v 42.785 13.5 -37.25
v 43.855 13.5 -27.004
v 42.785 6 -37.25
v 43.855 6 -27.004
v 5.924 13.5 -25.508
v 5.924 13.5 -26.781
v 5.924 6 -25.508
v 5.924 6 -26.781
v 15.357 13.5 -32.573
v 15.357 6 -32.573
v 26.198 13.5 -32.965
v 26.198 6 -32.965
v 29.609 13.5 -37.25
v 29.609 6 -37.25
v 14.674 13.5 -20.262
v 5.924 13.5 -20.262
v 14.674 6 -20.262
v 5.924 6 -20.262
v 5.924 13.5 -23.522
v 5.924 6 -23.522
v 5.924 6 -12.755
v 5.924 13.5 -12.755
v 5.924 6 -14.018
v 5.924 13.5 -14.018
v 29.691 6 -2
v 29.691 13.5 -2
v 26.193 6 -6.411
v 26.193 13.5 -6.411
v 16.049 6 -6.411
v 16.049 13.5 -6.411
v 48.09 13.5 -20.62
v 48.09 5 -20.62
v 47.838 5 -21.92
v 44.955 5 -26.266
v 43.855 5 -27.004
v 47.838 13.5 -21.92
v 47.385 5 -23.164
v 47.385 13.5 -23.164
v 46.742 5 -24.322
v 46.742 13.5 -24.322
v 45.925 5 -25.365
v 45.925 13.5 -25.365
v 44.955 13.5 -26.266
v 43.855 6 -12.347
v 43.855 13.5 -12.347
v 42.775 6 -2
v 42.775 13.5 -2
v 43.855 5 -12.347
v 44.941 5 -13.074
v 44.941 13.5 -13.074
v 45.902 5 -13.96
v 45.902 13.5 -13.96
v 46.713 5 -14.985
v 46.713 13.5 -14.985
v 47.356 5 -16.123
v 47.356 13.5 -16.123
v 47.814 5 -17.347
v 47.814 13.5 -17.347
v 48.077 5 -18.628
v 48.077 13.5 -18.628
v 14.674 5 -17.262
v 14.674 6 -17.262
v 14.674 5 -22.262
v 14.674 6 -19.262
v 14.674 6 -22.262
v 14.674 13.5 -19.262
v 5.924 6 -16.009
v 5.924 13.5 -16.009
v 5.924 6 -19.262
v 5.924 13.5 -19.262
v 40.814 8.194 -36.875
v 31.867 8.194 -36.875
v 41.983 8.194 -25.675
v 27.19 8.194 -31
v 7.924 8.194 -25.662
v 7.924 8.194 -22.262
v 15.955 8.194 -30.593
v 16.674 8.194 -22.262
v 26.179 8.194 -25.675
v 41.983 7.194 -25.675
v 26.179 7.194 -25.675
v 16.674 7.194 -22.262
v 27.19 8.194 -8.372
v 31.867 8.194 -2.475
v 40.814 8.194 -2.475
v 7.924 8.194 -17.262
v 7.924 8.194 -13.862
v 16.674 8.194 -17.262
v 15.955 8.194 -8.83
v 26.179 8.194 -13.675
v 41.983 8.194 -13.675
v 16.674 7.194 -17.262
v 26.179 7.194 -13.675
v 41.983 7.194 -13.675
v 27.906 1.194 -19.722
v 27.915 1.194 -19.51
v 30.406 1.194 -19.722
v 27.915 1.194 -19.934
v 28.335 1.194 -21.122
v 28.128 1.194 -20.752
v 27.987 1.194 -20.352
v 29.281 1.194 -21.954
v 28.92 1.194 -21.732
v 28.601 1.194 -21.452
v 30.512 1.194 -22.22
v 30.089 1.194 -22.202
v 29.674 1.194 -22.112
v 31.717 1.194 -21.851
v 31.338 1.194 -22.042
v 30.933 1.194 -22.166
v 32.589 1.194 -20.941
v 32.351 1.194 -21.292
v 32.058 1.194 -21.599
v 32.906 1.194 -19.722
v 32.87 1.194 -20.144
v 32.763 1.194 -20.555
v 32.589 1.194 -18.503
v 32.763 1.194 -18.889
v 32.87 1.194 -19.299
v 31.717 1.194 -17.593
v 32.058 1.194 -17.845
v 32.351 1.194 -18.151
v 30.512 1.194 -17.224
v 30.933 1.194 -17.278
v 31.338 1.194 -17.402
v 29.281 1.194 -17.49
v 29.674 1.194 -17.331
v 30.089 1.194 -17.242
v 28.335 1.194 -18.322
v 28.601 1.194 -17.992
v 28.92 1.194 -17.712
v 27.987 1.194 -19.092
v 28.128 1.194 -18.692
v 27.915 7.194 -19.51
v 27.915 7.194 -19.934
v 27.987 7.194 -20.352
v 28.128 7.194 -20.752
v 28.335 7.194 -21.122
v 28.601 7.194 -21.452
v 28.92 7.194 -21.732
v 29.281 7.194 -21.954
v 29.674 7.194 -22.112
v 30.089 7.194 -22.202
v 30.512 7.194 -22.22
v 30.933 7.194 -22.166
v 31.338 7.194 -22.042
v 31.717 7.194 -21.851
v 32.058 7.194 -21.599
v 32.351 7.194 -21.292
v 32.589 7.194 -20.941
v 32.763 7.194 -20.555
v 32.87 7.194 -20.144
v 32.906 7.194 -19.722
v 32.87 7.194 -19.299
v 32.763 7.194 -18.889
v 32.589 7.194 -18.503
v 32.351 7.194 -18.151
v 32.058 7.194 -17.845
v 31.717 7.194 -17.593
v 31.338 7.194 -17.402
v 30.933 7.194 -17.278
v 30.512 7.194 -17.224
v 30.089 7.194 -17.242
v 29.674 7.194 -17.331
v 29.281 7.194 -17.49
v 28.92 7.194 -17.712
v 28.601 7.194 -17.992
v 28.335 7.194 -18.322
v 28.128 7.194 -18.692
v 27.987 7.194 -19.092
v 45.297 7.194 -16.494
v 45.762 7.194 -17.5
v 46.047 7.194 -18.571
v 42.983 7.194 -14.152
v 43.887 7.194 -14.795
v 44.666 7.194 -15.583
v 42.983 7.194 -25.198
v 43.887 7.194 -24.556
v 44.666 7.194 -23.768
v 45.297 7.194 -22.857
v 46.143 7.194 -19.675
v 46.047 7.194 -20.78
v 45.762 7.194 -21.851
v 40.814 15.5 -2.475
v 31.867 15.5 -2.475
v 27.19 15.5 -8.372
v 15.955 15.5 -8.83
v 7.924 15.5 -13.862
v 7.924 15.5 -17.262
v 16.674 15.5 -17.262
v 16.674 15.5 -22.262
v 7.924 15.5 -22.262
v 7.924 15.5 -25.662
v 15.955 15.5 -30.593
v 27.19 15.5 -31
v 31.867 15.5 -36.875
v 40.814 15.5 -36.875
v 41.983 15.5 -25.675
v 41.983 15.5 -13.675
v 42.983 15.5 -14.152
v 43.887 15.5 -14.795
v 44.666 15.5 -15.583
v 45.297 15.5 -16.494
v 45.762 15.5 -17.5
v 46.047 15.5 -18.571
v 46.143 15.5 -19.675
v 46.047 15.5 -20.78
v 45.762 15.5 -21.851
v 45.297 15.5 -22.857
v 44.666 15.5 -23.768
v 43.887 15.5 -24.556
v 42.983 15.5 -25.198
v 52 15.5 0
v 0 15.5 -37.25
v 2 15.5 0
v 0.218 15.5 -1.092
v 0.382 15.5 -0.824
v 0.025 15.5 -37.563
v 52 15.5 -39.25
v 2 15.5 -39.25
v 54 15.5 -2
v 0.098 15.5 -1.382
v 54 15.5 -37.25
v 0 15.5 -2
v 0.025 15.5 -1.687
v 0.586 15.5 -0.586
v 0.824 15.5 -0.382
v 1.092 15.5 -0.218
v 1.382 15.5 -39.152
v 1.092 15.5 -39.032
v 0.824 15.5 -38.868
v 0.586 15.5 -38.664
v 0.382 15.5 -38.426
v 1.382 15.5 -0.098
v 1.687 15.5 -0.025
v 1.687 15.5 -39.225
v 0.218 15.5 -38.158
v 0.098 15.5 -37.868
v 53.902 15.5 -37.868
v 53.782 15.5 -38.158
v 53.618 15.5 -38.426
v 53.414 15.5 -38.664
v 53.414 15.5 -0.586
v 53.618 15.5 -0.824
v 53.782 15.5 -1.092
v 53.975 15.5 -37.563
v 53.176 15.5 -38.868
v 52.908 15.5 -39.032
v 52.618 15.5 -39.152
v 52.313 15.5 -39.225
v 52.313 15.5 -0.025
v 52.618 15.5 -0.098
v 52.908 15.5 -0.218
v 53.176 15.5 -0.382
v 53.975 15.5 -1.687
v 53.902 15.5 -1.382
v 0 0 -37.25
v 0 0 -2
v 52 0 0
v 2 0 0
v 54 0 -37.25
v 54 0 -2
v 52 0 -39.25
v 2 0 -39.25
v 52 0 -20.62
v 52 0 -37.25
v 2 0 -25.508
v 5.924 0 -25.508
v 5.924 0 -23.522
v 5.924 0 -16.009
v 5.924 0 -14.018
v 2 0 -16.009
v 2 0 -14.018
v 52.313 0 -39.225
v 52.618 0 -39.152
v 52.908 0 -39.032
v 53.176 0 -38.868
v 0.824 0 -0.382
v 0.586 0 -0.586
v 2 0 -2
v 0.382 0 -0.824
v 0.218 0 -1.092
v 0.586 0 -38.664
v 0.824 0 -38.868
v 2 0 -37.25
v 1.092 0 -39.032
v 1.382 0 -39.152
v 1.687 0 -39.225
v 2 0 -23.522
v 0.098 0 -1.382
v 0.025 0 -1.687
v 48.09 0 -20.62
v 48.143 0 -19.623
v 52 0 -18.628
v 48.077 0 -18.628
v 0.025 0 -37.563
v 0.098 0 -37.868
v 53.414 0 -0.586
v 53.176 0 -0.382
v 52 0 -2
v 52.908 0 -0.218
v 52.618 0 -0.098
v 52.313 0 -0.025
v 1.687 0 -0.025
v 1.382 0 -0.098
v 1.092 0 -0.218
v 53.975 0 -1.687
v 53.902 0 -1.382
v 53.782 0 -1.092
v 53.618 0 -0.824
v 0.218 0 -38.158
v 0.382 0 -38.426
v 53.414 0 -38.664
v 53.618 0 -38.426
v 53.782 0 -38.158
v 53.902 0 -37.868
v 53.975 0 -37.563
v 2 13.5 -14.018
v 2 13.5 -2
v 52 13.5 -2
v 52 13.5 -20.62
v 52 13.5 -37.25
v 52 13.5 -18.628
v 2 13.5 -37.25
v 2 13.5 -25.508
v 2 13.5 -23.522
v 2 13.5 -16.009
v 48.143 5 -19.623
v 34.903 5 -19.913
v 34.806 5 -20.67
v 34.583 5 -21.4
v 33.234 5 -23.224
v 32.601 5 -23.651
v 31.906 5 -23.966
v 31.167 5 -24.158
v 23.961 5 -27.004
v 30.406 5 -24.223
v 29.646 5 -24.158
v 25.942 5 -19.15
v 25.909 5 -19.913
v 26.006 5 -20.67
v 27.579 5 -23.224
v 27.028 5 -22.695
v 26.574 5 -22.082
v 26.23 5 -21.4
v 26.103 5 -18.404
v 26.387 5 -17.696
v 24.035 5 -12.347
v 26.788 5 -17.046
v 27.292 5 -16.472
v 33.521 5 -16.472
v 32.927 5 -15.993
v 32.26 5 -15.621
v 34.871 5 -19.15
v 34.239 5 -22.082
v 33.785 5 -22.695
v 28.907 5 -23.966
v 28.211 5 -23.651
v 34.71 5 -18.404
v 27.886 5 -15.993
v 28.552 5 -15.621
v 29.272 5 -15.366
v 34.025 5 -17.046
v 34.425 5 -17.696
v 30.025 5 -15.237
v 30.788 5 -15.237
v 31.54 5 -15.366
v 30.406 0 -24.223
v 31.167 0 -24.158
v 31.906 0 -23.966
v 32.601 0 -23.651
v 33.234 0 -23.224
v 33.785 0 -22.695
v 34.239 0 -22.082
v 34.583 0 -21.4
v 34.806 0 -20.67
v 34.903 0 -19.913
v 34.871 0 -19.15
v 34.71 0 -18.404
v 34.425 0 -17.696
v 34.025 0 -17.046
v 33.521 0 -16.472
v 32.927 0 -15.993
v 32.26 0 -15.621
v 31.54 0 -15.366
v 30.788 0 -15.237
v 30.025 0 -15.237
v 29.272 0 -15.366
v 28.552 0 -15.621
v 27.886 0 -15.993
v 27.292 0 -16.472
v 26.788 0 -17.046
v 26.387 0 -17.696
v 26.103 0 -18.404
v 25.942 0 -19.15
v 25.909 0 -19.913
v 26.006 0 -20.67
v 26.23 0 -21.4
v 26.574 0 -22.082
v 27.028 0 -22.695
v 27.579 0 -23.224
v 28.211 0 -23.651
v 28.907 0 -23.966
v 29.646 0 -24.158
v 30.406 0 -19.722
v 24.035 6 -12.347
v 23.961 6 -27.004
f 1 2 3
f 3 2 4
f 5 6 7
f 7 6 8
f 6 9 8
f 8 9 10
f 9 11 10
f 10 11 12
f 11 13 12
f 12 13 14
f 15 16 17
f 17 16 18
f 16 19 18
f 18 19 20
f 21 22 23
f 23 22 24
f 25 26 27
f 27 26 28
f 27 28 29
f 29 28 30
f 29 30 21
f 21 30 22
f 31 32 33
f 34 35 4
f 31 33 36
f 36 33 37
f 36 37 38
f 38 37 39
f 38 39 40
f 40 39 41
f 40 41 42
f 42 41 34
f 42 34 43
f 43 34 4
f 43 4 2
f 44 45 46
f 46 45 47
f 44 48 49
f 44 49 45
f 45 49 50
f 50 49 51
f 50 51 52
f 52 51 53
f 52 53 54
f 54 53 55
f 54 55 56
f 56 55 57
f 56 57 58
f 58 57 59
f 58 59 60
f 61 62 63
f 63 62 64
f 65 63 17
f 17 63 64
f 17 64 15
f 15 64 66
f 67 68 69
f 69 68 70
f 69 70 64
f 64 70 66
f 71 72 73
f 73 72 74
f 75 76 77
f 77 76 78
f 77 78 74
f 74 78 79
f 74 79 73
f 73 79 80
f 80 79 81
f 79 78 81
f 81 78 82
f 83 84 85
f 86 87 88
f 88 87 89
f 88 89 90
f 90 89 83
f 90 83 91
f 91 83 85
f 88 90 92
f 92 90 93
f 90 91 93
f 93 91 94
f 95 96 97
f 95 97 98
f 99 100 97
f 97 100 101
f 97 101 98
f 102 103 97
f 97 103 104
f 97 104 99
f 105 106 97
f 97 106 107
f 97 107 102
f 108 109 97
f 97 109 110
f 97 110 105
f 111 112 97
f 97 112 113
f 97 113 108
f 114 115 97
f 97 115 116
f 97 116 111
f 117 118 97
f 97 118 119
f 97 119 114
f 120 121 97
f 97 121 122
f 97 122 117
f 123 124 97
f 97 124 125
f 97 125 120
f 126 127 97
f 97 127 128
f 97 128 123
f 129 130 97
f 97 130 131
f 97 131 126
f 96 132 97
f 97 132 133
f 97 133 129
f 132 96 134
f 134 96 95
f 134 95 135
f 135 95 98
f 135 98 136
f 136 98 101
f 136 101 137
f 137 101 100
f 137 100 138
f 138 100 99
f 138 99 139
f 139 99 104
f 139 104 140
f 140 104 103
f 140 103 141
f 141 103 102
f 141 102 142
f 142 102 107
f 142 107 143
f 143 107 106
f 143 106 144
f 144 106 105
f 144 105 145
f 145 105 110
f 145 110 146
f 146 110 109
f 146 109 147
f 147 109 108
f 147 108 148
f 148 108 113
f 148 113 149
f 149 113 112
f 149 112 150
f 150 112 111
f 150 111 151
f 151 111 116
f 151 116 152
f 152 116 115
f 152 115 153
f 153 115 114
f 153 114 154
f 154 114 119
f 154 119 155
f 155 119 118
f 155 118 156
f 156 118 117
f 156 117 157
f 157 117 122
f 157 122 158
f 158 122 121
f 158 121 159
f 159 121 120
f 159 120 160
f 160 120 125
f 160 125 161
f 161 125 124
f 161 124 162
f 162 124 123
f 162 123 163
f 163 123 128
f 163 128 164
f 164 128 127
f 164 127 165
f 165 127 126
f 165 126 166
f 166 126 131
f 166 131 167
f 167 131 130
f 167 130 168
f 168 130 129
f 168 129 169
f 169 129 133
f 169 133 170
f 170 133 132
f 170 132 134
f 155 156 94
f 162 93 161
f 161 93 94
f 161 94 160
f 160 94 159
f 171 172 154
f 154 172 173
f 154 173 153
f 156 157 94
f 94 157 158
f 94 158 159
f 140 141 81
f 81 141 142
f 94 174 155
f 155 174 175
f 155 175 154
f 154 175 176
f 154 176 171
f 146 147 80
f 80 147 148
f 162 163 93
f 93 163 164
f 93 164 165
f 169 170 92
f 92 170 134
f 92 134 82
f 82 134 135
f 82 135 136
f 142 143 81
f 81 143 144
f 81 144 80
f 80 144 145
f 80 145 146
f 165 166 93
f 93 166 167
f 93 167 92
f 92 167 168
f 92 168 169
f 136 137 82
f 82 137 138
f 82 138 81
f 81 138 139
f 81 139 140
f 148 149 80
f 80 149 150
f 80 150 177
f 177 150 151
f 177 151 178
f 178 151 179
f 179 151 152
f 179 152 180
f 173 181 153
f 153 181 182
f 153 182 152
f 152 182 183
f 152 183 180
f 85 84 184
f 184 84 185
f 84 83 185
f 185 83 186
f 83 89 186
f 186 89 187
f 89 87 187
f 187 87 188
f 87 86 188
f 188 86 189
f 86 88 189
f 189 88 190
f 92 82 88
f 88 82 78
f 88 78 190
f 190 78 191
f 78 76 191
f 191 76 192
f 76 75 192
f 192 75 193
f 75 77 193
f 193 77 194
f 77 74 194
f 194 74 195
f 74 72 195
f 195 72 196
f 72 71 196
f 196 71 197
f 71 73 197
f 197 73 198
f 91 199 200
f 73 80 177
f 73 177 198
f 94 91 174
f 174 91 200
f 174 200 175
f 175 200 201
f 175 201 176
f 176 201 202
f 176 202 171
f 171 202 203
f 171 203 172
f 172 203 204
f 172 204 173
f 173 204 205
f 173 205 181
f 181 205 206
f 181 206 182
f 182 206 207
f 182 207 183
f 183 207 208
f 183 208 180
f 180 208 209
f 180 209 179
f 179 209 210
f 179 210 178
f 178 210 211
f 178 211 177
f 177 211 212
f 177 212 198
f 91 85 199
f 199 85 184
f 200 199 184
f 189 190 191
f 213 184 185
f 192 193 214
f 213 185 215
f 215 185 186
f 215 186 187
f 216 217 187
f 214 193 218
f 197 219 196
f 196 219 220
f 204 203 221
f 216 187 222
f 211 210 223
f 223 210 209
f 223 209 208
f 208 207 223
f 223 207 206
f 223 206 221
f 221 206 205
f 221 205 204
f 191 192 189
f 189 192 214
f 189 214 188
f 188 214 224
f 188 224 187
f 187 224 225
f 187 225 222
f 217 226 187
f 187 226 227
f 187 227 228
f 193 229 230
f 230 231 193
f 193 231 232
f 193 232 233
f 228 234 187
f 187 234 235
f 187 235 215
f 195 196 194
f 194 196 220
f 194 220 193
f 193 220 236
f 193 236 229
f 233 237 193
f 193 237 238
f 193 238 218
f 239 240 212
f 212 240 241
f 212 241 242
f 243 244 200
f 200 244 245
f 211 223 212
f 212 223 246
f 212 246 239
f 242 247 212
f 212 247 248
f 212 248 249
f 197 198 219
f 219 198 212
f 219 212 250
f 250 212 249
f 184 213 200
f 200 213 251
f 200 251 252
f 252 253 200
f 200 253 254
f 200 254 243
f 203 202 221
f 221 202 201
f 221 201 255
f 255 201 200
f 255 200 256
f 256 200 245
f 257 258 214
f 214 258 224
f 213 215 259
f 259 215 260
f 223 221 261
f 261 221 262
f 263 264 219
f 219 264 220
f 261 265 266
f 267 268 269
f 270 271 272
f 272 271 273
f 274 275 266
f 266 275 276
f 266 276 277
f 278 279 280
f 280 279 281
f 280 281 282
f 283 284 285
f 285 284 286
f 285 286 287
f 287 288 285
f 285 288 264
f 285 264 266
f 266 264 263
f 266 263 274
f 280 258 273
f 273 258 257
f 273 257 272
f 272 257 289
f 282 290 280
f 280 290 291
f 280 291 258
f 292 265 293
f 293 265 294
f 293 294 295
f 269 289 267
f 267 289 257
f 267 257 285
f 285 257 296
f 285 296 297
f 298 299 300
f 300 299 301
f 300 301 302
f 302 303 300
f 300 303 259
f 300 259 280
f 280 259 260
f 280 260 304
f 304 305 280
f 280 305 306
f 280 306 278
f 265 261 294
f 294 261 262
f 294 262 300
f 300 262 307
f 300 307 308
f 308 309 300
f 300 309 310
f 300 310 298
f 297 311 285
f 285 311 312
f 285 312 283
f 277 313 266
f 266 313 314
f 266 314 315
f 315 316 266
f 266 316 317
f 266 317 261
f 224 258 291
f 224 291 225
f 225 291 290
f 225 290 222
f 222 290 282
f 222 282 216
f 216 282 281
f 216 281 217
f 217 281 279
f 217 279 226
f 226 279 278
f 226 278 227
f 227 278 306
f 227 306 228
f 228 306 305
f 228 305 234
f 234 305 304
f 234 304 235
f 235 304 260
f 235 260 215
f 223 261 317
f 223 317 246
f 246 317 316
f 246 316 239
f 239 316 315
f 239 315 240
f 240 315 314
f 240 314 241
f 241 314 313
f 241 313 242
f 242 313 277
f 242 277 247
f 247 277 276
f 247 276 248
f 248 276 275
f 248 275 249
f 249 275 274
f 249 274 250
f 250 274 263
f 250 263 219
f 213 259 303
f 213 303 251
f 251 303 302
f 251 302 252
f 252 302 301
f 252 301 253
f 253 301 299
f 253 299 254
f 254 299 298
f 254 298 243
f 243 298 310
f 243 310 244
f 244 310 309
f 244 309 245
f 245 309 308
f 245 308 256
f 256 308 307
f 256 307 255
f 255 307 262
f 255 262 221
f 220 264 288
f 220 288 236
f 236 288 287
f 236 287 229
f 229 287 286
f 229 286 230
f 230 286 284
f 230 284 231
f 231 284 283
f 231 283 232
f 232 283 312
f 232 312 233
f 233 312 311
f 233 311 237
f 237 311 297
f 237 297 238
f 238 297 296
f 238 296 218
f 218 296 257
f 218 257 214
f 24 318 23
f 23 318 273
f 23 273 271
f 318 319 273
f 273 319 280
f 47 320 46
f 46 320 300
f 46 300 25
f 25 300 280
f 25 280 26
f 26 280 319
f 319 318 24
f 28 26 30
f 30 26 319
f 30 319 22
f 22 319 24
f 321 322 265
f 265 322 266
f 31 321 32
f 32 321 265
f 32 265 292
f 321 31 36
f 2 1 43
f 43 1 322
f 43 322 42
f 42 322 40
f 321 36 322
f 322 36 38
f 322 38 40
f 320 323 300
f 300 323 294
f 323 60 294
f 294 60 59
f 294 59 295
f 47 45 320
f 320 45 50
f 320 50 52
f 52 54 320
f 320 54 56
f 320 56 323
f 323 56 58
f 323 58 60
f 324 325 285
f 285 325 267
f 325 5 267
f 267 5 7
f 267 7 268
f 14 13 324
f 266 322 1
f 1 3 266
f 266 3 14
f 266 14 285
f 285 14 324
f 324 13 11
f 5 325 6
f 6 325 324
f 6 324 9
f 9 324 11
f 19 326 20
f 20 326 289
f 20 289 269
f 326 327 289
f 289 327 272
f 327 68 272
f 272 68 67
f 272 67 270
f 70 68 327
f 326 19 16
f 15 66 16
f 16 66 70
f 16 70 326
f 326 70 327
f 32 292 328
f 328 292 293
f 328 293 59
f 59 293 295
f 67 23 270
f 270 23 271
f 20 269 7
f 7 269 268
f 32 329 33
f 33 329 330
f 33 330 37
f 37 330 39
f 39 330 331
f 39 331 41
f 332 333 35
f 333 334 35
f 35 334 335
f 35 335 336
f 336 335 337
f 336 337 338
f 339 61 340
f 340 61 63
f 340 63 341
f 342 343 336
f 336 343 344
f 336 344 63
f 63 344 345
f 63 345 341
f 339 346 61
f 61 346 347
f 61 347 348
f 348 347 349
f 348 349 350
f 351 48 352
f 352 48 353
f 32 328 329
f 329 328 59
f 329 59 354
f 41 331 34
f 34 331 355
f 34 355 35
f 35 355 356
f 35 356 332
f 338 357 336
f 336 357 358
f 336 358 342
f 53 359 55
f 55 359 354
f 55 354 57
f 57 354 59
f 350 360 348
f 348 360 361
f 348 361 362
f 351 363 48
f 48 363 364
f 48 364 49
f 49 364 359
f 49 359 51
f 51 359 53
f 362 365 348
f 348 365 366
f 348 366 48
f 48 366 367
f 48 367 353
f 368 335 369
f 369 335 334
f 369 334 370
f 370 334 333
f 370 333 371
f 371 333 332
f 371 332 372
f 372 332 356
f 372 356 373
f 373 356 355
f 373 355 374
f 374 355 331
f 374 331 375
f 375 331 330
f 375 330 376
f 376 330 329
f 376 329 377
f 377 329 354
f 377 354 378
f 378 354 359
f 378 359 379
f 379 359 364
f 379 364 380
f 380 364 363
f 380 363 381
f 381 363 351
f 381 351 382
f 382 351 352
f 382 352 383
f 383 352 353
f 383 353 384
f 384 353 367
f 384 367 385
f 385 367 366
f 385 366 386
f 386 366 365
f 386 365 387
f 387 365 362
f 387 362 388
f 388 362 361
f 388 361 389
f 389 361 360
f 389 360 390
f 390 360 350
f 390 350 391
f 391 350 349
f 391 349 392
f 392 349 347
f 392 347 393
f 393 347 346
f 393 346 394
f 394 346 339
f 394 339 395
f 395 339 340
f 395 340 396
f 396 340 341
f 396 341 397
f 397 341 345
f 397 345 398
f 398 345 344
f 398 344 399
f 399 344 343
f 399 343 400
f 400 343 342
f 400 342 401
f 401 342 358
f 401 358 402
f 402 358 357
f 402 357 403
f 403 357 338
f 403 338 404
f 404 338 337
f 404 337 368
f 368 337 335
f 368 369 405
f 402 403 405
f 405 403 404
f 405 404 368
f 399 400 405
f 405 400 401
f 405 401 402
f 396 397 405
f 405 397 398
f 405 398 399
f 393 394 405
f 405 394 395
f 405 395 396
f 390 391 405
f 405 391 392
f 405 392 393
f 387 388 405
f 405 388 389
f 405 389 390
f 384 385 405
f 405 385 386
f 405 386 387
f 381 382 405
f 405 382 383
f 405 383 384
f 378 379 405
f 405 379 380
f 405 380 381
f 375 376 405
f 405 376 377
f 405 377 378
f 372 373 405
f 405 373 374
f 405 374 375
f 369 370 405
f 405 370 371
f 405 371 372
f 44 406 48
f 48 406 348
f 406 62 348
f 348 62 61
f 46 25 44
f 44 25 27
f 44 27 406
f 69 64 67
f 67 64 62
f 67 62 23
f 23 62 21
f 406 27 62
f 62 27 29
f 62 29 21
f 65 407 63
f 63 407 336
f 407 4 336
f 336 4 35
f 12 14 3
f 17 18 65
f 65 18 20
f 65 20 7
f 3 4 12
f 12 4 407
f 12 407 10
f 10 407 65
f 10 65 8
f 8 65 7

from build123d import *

# Parameters (mm, degrees)
SKETCH1_W              = 54
SKETCH1_H              = 39.25
BOSS_EXTRUDE1_DEPTH    = 15.5
FILLET1_R              = 2
FILLET2_R              = 2
M3_A_START             = -2.329776532
M3_A_BLANK_DEPTH       = 8
M3_A_START_2           = -3.329776532
M3_A_BLANK_2_DEPTH     = 1
M3_A_START_3           = -9.329776532
M3_A_BLANK_3_OUTLINE_R = 2.5
M3_A_BLANK_3_DEPTH     = 6
BODY_MOVE_COPY6_ANGLE  = 90
CUT_EXTRUDE1_DEPTH     = 13.5
SKETCH4_R              = 4.500854338
CUT_EXTRUDE3_DEPTH     = 5
CUT_EXTRUDE4_DEPTH     = 1


with BuildPart() as part:
    # Sketch1 → Boss-Extrude1 (new body)
    with BuildSketch(Plane(origin=(0, 0, 0), x_dir=(1, 0, 0), z_dir=(0, 1, 0))):
        with Locations((27, 19.625)):
            Rectangle(SKETCH1_W, SKETCH1_H)
    extrude(amount=BOSS_EXTRUDE1_DEPTH)

    # Fillet1
    fillet1_edges = [part.edges().sort_by_distance(p)[0] for p in [
        (0, 7.75, 0),
    ]]
    fillet(fillet1_edges, radius=FILLET1_R)

    # Fillet2
    fillet2_edges = [part.edges().sort_by_distance(p)[0] for p in [
        (0, 7.75, -39.25),
        (54, 7.75, -39.25),
        (54, 7.75, 0),
    ]]
    fillet(fillet2_edges, radius=FILLET2_R)


with BuildPart() as body_2:
    # M3-A Blank: read off the stored shape, not the designer's step
    # M3-A Blank outline → M3-A Blank (new body)
    with BuildSketch(Plane(origin=(0, 0, 0), x_dir=(1, 0, 0), z_dir=(0, 1, 0)).offset(M3_A_START)):
        with BuildLine():
            Line((-21.79493826, 68.00205199), (-26.79493826, 68.00205199))
            Line((-26.79493826, 68.00205199), (-26.79493826, 76.75205199))
            Line((-26.79493826, 76.75205199), (-30.19493826, 76.75205199))
            Line((-30.19493826, 76.75205199), (-35.227586031, 68.720149487))
            Line((-35.227586031, 68.720149487), (-35.685099465, 57.485652948))
            Line((-35.685099465, 57.485652948), (-41.581939277, 52.808848959))
            Line((-41.581939277, 52.808848959), (-41.581939277, 43.861919588))
            Line((-41.581939277, 43.861919588), (-30.381939277, 42.692718591))
            ThreePointArc((-30.381939277, 42.692718591), (-24.381939277, 38.532817401), (-18.381939277, 42.692718591))
            Line((-18.381939277, 42.692718591), (-7.181939277, 43.861919588))
            Line((-7.181939277, 43.861919588), (-7.181939277, 52.808848959))
            Line((-7.181939277, 52.808848959), (-13.057281533, 57.485652948))
            Line((-13.057281533, 57.485652948), (-13.463960141, 68.720149487))
            Line((-13.463960141, 68.720149487), (-18.39493826, 76.75205199))
            Line((-18.39493826, 76.75205199), (-21.79493826, 76.75205199))
            Line((-21.79493826, 76.75205199), (-21.79493826, 68.00205199))
        make_face()
    extrude(amount=M3_A_BLANK_DEPTH)

    # M3-A Blank 2 outline → M3-A Blank 2 (add)
    with BuildSketch(Plane(origin=(0, 0, 0), x_dir=(1, 0, 0), z_dir=(0, 1, 0)).offset(M3_A_START_2)):
        with BuildLine():
            Line((-30.381939277, 58.496246856), (-30.381939277, 42.692718591))
            ThreePointArc((-30.381939277, 42.692718591), (-24.381939277, 38.532817401), (-18.381939277, 42.692718591))
            Line((-18.381939277, 42.692718591), (-18.381939277, 58.496246856))
            Line((-18.381939277, 58.496246856), (-21.79493826, 68.00205199))
            Line((-21.79493826, 68.00205199), (-26.79493826, 68.00205199))
            Line((-26.79493826, 68.00205199), (-30.381939277, 58.496246856))
        make_face()
    extrude(amount=M3_A_BLANK_2_DEPTH)

    # M3-A Blank 3 outline → M3-A Blank 3 (add)
    with BuildSketch(Plane(origin=(0, 0, 0), x_dir=(1, 0, 0), z_dir=(0, 1, 0)).offset(M3_A_START_3)):
        with Locations((-24.335480832, 54.269355582)):
            Circle(M3_A_BLANK_3_OUTLINE_R)
    extrude(amount=M3_A_BLANK_3_DEPTH)


with BuildPart() as body_2_1:
    # Body-Move/Copy4: moved
    add(body_2.part.moved(Location((42.5, 8.919688157, 37.96700657))))


with BuildPart() as body_2_2:
    # Body-Move/Copy5: moved
    add(body_2_1.part.moved(Location((8.915108254, 0, 0))))


with BuildPart() as body_2_3:
    # Body-Move/Copy6: moved
    add(body_2_2.part.rotate(Axis((27.033168977, 0, -19.675428126), (0, 1, 0)), BODY_MOVE_COPY6_ANGLE))


with BuildPart() as body_2_4:
    # Body-Move/Copy7: moved
    add(body_2_3.part.moved(Location((0, 1.103676274, 0))))


with BuildPart() as body_2_5:
    # Body-Move/Copy8: moved
    add(body_2_4.part.moved(Location((0, 0.5, 0))))


with BuildPart() as part_1:
    add(part.part)

    # Intersect1: read off the stored shape, not the designer's step
    # Intersect1: cut body 2
    add(body_2_5.part, mode=Mode.SUBTRACT)

    # Sketch3 → Cut-Extrude1 (cut)
    with BuildSketch(Plane(origin=(0, 0, 0), x_dir=(-1, 0, 0), z_dir=(0, -1, 0))):
        Polygon((-5.923551682, 12.755419679), (-16.048628272, 6.41122612), (-26.192603819, 6.41122612), (-29.691162465, 2), (-2, 2), (-2, 14.017695962), (-5.923551682, 14.017695962), align=None)
        Polygon((-2, 37.25), (-29.60864948, 37.25), (-26.198159594, 32.965493874), (-15.357384062, 32.57306761), (-5.923551682, 26.781411023), (-5.923551682, 25.507817982), (-2, 25.507817982), align=None)
        Polygon((-5.923551682, 20.262429143), (-14.673551682, 20.262429143), (-14.673551682, 19.262429143), (-5.923551682, 19.262429143), (-5.923551682, 16.008924411), (-2, 16.008924411), (-2, 23.521920083), (-5.923551682, 23.521920083), align=None)
        with BuildLine():
            Line((-42.774921098, 2), (-52, 2))
            Line((-52, 2), (-52, 18.627764364))
            Line((-52, 18.627764364), (-48.077251764, 18.627764364))
            ThreePointArc((-48.077251764, 18.627764364), (-46.712904885, 14.985289801), (-43.85505184, 12.346778986))
            Line((-43.85505184, 12.346778986), (-42.774921098, 2))
        make_face()
        with BuildLine():
            Line((-52, 37.25), (-42.78544978, 37.25))
            Line((-42.78544978, 37.25), (-43.85505184, 27.004077266))
            ThreePointArc((-43.85505184, 27.004077266), (-46.741831066, 24.322246322), (-48.089593706, 20.619646239))
            Line((-48.089593706, 20.619646239), (-52, 20.619646239))
            Line((-52, 20.619646239), (-52, 37.25))
        make_face()
    extrude(amount=-CUT_EXTRUDE1_DEPTH, mode=Mode.SUBTRACT)

    # Sketch4 → Cut-Extrude3 (cut)
    with BuildSketch(Plane.XZ):
        with BuildLine():
            Line((5.923551682, -14.017695962), (5.923551682, -12.755419679))
            Line((5.923551682, -12.755419679), (16.048628272, -6.41122612))
            Line((16.048628272, -6.41122612), (26.192603819, -6.41122612))
            Line((26.192603819, -6.41122612), (29.691162465, -2))
            Line((29.691162465, -2), (42.774921098, -2))
            Line((42.774921098, -2), (43.85505184, -12.346778986))
            ThreePointArc((43.85505184, -12.346778986), (48.142786272, -19.675428126), (43.85505184, -27.004077266))
            Line((43.85505184, -27.004077266), (42.78544978, -37.25))
            Line((42.78544978, -37.25), (29.60864948, -37.25))
            Line((29.60864948, -37.25), (26.198159594, -32.965493874))
            Line((26.198159594, -32.965493874), (15.357384062, -32.57306761))
            Line((15.357384062, -32.57306761), (5.923551682, -26.781411023))
            Line((5.923551682, -26.781411023), (5.923551682, -25.507817982))
            Line((5.923551682, -25.507817982), (5.923551682, -23.521920083))
            Line((5.923551682, -23.521920083), (5.923551682, -20.262429143))
            Line((5.923551682, -20.262429143), (5.923551682, -19.262429143))
            Line((5.923551682, -19.262429143), (5.923551682, -16.008924411))
            Line((5.923551682, -16.008924411), (5.923551682, -14.017695962))
        make_face()
        with Locations(Location((30.40624809, -19.721886571, 0), (0, 0, 270))):
            Circle(SKETCH4_R, mode=Mode.SUBTRACT)
    extrude(amount=-CUT_EXTRUDE3_DEPTH, mode=Mode.SUBTRACT)

    # Sketch5 → Cut-Extrude4 (cut)
    with BuildSketch(Plane.XZ.offset(-5)):
        Polygon((43.85505184, -12.346778986), (42.774921098, -2), (29.691162465, -2), (26.192603819, -6.41122612), (16.048628272, -6.41122612), (5.923551682, -12.755419679), (5.923551682, -19.262429143), (14.673551682, -19.262429143), (14.673551682, -17.262429143), (24.035435238, -12.346778986), align=None)
        Polygon((14.673551682, -20.262429143), (5.923551682, -20.262429143), (5.923551682, -26.781411023), (15.357384062, -32.57306761), (26.198159594, -32.965493874), (29.60864948, -37.25), (42.78544978, -37.25), (43.85505184, -27.004077266), (23.961363008, -27.004077266), (14.673551682, -22.262429143), align=None)
    extrude(amount=-CUT_EXTRUDE4_DEPTH, mode=Mode.SUBTRACT)


solid = part_1.part
